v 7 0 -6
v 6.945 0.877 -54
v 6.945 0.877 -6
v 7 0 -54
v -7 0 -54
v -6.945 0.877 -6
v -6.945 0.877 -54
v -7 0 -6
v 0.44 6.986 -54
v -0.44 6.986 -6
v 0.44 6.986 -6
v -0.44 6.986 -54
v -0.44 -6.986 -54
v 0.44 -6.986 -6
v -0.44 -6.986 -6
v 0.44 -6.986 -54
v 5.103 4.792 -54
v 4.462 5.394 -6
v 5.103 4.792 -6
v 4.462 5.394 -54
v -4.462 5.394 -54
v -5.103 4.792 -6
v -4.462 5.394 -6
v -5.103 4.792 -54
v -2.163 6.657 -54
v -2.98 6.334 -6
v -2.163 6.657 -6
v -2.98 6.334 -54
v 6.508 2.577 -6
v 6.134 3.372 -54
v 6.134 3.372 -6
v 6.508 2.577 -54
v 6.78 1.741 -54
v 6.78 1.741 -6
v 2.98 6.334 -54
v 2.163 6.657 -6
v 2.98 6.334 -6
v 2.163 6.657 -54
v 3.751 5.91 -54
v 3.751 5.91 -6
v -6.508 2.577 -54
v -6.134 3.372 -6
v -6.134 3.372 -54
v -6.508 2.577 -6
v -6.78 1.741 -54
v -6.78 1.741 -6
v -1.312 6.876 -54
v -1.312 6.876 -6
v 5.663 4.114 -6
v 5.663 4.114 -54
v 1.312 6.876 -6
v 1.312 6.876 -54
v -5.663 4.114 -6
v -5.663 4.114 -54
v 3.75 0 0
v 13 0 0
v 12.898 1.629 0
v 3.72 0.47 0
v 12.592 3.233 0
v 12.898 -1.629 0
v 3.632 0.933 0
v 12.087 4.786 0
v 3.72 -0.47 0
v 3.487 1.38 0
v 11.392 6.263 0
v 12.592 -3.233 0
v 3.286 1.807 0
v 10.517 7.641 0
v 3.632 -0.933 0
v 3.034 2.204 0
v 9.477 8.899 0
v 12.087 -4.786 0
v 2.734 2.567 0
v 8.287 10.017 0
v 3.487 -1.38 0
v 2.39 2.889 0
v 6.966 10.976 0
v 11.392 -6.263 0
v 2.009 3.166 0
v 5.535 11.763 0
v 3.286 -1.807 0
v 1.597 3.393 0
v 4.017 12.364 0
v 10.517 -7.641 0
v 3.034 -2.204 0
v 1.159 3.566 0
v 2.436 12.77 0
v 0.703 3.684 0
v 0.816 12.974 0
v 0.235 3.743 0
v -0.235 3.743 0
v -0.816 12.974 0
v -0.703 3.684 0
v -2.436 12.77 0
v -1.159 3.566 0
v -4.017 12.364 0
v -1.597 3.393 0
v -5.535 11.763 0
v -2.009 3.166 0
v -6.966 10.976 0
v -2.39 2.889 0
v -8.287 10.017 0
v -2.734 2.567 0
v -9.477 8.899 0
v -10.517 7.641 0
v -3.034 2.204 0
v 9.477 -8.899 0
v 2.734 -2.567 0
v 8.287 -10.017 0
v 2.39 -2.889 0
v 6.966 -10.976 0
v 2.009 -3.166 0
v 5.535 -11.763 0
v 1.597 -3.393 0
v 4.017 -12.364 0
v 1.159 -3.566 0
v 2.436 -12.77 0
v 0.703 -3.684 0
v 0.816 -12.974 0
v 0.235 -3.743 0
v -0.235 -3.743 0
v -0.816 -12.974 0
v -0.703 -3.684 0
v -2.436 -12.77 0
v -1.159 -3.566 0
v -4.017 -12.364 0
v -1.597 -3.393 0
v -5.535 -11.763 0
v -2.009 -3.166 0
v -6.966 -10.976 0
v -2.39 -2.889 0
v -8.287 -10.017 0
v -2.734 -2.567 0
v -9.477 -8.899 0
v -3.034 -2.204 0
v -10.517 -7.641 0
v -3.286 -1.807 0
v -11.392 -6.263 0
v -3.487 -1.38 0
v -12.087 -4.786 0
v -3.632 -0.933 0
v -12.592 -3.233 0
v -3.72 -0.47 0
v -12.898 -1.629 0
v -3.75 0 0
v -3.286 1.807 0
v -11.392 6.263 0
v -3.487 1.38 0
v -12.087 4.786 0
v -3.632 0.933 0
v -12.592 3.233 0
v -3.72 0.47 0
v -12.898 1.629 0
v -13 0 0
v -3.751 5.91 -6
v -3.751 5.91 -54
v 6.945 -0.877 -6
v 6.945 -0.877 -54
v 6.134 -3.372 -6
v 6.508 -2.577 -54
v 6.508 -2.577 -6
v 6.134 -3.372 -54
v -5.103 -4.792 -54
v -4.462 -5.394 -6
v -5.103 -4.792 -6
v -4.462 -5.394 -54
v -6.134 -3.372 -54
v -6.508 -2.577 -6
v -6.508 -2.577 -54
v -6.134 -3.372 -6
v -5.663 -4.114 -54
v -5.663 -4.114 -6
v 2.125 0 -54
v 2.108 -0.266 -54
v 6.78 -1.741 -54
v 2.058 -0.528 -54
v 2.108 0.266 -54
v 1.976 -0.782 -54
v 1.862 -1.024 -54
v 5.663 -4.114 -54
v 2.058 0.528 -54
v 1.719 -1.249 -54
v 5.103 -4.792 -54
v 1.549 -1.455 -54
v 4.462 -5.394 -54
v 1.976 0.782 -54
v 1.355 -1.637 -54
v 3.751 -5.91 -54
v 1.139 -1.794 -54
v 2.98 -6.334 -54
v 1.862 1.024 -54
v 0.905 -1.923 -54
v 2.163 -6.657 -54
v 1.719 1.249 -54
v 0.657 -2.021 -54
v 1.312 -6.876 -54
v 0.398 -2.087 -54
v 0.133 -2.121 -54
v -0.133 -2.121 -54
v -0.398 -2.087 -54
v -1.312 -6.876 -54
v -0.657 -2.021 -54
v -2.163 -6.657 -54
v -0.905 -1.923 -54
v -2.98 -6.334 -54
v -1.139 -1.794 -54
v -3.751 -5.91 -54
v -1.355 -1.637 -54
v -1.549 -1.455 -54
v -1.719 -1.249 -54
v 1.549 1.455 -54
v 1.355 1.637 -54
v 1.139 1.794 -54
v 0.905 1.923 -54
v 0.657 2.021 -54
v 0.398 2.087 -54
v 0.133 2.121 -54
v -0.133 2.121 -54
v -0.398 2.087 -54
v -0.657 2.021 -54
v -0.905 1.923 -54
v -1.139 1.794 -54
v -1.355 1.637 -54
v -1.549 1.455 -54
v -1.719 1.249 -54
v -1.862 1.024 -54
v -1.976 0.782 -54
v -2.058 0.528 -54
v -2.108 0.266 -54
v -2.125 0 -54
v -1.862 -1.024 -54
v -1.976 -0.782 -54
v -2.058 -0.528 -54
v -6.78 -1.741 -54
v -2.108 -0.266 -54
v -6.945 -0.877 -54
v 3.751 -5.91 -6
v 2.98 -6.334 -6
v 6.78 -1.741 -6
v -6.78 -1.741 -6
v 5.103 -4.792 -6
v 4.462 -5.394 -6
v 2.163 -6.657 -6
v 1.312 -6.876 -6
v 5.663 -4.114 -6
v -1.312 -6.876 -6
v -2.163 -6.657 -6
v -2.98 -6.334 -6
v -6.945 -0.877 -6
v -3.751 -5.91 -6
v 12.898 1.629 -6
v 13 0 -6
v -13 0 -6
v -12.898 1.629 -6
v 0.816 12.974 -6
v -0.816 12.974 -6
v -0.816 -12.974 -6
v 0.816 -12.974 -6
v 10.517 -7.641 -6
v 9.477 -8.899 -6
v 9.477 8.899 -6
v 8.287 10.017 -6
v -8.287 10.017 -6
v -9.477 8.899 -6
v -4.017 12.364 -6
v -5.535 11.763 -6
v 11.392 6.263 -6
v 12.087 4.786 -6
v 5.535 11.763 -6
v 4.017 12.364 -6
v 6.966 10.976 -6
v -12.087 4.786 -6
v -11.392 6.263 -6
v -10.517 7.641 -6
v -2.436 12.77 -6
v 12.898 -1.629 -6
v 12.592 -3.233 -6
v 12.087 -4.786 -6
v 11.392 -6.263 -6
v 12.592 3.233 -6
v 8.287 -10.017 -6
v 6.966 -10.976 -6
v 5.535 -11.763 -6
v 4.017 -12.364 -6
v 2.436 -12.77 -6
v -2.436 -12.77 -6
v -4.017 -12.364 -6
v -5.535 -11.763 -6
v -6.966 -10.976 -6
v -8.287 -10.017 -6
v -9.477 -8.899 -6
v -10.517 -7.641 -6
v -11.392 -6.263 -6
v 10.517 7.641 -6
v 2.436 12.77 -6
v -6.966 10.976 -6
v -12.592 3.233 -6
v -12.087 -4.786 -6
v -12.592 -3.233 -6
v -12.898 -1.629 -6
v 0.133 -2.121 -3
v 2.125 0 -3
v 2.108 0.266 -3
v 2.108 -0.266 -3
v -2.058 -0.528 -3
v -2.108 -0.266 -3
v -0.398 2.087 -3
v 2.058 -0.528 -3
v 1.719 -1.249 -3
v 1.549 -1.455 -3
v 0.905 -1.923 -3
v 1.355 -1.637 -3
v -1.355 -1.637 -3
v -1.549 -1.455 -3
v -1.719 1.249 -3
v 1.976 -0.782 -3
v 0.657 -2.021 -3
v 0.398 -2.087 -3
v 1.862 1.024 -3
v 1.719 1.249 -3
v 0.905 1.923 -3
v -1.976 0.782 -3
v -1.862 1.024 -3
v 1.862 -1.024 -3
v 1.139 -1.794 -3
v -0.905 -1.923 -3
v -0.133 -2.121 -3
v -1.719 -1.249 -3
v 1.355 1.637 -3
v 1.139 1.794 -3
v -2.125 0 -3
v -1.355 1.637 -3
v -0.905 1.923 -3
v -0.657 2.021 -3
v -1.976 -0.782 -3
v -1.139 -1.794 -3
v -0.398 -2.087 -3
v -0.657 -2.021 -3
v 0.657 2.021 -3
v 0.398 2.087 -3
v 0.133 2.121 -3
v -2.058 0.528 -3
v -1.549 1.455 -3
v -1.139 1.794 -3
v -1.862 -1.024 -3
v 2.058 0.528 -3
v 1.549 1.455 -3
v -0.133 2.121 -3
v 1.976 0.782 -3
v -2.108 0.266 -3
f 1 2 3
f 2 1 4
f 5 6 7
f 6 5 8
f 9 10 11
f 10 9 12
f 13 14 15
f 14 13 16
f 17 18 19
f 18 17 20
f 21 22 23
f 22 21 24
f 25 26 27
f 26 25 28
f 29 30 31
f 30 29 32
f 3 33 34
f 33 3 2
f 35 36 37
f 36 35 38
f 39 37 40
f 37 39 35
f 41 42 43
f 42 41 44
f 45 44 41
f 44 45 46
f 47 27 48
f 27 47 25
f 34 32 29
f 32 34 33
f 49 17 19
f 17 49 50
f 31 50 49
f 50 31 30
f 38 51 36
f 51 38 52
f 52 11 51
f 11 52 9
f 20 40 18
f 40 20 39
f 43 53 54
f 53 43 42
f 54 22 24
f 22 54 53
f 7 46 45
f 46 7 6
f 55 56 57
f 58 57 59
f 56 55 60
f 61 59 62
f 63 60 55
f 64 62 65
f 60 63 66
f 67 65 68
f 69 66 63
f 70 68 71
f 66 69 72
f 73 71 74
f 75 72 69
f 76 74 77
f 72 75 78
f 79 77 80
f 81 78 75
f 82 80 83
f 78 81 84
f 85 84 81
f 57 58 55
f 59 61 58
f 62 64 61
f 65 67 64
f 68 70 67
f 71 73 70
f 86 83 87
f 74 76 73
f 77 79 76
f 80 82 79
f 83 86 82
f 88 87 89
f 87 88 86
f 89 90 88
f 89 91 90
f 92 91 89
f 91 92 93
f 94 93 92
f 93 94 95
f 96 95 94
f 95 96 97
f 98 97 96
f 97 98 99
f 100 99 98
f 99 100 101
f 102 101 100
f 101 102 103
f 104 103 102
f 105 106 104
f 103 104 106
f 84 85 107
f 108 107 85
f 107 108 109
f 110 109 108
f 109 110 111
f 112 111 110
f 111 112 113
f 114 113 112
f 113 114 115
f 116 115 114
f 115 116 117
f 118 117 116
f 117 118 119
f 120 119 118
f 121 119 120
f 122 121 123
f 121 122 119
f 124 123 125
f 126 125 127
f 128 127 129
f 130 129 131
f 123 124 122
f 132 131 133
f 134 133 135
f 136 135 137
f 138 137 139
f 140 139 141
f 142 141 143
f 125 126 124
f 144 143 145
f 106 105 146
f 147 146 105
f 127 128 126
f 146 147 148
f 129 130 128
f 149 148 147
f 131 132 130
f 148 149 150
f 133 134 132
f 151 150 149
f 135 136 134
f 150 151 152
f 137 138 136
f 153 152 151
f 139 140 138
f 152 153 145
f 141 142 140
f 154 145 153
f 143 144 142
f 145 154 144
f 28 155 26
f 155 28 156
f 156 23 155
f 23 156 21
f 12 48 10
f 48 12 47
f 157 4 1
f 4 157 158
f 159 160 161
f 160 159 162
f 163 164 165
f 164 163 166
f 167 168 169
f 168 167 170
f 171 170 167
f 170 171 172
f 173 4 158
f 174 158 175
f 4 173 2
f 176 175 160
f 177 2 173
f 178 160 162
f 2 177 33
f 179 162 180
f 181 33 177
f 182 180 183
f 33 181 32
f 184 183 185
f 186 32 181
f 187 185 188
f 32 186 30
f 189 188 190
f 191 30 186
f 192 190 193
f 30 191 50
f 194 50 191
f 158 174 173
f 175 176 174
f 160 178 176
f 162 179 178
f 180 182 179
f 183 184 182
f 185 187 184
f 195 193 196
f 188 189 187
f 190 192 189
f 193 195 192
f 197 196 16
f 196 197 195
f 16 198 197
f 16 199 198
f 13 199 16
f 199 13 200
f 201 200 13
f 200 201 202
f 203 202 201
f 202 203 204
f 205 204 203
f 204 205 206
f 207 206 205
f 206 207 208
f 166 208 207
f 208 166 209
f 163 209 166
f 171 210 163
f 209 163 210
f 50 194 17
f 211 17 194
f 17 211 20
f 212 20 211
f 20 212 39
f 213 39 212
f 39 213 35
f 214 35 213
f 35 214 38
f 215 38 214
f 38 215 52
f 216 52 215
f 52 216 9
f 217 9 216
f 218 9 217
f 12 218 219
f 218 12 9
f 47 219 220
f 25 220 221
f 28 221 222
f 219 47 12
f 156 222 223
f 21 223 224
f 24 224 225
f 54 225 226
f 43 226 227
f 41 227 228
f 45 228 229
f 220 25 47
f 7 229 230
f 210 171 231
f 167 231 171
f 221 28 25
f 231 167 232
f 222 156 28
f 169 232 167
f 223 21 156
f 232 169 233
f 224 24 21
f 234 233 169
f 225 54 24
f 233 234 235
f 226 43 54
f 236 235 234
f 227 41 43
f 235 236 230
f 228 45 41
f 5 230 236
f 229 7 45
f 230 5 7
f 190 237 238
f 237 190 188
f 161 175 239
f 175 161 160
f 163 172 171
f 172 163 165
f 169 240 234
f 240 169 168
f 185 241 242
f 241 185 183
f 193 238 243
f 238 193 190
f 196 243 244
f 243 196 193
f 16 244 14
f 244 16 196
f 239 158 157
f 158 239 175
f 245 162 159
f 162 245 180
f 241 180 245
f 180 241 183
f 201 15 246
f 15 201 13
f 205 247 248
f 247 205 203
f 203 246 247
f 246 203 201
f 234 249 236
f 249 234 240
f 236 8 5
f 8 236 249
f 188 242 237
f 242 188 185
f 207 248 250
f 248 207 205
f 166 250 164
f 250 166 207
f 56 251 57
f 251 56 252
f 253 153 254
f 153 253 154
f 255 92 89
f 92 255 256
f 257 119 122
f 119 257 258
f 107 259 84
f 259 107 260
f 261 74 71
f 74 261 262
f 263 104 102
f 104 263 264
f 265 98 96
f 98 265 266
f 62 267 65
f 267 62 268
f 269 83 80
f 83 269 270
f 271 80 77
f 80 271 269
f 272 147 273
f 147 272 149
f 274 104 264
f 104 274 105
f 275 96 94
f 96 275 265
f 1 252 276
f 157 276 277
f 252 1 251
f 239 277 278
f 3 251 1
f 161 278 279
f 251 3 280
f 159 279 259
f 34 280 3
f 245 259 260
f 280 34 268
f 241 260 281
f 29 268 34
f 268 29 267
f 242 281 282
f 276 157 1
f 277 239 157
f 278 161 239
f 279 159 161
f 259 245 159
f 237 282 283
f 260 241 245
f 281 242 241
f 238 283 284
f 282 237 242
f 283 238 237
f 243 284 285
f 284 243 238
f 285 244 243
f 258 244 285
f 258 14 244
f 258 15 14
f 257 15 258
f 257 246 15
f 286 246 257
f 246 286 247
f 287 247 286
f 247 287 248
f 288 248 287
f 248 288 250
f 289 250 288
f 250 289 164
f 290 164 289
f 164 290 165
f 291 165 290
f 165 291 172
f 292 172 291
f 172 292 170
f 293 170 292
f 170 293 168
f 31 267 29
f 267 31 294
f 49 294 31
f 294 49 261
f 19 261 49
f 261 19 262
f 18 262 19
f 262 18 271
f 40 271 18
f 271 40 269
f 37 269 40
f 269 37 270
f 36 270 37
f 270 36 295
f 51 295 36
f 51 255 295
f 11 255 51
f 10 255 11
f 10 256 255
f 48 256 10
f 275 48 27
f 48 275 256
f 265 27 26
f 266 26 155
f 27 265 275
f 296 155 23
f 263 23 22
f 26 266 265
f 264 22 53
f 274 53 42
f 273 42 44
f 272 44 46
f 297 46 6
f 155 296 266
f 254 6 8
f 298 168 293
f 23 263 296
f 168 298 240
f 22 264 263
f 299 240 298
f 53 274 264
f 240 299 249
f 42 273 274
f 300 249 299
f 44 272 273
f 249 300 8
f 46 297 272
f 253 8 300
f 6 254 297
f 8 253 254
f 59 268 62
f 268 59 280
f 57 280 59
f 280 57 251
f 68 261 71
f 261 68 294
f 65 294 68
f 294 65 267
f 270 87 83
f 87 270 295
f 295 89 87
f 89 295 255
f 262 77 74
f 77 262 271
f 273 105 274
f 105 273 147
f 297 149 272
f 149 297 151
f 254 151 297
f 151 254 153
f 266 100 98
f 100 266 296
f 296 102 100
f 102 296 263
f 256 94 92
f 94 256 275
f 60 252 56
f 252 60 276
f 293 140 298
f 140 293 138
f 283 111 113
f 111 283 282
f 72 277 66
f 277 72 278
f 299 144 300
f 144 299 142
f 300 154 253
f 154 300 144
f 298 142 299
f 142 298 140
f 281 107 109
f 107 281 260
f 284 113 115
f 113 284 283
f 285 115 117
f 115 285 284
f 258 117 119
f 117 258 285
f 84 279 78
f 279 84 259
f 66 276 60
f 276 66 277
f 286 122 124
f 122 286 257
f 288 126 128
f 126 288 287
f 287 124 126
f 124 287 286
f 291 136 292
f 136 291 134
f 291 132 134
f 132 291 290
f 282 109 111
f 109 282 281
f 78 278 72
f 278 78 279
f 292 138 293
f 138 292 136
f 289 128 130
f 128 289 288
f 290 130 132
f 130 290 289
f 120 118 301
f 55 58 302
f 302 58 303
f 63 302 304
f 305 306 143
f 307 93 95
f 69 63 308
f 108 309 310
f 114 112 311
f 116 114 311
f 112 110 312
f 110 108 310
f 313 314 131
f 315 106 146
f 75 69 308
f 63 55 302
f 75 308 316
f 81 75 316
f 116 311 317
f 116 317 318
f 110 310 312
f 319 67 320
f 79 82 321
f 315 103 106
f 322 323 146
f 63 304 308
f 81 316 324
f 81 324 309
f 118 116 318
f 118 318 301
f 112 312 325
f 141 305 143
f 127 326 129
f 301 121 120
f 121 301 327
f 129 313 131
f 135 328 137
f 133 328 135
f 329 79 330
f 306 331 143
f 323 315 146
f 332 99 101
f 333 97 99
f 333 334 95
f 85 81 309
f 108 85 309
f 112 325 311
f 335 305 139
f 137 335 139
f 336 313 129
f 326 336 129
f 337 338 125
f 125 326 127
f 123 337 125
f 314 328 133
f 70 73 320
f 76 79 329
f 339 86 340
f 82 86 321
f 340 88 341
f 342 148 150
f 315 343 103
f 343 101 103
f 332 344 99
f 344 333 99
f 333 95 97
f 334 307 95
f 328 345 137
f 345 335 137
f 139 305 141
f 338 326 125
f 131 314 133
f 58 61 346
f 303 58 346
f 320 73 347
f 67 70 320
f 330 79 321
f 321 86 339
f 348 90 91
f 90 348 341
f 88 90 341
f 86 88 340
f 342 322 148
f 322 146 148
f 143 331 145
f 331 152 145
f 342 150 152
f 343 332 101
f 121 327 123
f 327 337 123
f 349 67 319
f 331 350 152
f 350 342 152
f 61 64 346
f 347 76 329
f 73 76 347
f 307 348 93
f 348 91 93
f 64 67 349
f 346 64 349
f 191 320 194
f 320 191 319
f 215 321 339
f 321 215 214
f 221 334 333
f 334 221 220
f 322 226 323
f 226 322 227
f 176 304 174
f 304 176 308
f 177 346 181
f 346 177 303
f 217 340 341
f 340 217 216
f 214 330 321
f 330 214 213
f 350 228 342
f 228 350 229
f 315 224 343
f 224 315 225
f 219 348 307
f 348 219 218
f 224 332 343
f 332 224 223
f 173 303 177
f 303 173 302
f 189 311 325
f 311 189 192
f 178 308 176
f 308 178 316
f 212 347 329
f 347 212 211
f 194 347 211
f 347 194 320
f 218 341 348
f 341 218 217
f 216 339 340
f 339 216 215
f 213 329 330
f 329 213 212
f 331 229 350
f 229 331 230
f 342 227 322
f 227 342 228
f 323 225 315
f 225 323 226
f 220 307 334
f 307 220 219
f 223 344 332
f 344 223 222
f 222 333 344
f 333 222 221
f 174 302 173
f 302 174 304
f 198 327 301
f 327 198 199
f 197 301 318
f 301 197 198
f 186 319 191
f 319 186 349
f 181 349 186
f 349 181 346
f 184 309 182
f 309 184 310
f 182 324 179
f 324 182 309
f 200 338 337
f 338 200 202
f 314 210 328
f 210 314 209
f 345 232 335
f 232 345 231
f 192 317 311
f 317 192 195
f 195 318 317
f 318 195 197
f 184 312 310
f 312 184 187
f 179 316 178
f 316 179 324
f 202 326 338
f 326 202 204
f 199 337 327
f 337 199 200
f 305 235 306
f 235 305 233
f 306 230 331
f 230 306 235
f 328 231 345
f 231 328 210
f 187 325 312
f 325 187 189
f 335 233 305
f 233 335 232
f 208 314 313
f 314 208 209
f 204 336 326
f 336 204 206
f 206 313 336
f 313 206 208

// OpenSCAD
$fn = 50;


difference() {
	union() {
		translate(v = [0, 0, -54.0000000000]) {
			cylinder(h = 54, r = 7.0000000000);
		}
		translate(v = [0, 0, -6.0000000000]) {
			cylinder(h = 6, r = 13.0000000000);
		}
	}
	union() {
		translate(v = [0, 0, 0]) {
			rotate(a = [0, 0, 0]) {
				difference() {
					union() {
						#translate(v = [0, 0, -54.0000000000]) {
							cylinder(h = 54, r = 2.0000000000);
						}
						#translate(v = [0, 0, -3]) {
							cylinder(h = 3, r1 = 2.1250000000, r2 = 3.7500000000);
						}
						#translate(v = [0, 0, -54.0000000000]) {
							cylinder(h = 54, r = 2.1250000000);
						}
						#translate(v = [0, 0, -54.0000000000]) {
							cylinder(h = 54, r = 2.0000000000);
						}
					}
					union();
				}
			}
		}
	}
}
